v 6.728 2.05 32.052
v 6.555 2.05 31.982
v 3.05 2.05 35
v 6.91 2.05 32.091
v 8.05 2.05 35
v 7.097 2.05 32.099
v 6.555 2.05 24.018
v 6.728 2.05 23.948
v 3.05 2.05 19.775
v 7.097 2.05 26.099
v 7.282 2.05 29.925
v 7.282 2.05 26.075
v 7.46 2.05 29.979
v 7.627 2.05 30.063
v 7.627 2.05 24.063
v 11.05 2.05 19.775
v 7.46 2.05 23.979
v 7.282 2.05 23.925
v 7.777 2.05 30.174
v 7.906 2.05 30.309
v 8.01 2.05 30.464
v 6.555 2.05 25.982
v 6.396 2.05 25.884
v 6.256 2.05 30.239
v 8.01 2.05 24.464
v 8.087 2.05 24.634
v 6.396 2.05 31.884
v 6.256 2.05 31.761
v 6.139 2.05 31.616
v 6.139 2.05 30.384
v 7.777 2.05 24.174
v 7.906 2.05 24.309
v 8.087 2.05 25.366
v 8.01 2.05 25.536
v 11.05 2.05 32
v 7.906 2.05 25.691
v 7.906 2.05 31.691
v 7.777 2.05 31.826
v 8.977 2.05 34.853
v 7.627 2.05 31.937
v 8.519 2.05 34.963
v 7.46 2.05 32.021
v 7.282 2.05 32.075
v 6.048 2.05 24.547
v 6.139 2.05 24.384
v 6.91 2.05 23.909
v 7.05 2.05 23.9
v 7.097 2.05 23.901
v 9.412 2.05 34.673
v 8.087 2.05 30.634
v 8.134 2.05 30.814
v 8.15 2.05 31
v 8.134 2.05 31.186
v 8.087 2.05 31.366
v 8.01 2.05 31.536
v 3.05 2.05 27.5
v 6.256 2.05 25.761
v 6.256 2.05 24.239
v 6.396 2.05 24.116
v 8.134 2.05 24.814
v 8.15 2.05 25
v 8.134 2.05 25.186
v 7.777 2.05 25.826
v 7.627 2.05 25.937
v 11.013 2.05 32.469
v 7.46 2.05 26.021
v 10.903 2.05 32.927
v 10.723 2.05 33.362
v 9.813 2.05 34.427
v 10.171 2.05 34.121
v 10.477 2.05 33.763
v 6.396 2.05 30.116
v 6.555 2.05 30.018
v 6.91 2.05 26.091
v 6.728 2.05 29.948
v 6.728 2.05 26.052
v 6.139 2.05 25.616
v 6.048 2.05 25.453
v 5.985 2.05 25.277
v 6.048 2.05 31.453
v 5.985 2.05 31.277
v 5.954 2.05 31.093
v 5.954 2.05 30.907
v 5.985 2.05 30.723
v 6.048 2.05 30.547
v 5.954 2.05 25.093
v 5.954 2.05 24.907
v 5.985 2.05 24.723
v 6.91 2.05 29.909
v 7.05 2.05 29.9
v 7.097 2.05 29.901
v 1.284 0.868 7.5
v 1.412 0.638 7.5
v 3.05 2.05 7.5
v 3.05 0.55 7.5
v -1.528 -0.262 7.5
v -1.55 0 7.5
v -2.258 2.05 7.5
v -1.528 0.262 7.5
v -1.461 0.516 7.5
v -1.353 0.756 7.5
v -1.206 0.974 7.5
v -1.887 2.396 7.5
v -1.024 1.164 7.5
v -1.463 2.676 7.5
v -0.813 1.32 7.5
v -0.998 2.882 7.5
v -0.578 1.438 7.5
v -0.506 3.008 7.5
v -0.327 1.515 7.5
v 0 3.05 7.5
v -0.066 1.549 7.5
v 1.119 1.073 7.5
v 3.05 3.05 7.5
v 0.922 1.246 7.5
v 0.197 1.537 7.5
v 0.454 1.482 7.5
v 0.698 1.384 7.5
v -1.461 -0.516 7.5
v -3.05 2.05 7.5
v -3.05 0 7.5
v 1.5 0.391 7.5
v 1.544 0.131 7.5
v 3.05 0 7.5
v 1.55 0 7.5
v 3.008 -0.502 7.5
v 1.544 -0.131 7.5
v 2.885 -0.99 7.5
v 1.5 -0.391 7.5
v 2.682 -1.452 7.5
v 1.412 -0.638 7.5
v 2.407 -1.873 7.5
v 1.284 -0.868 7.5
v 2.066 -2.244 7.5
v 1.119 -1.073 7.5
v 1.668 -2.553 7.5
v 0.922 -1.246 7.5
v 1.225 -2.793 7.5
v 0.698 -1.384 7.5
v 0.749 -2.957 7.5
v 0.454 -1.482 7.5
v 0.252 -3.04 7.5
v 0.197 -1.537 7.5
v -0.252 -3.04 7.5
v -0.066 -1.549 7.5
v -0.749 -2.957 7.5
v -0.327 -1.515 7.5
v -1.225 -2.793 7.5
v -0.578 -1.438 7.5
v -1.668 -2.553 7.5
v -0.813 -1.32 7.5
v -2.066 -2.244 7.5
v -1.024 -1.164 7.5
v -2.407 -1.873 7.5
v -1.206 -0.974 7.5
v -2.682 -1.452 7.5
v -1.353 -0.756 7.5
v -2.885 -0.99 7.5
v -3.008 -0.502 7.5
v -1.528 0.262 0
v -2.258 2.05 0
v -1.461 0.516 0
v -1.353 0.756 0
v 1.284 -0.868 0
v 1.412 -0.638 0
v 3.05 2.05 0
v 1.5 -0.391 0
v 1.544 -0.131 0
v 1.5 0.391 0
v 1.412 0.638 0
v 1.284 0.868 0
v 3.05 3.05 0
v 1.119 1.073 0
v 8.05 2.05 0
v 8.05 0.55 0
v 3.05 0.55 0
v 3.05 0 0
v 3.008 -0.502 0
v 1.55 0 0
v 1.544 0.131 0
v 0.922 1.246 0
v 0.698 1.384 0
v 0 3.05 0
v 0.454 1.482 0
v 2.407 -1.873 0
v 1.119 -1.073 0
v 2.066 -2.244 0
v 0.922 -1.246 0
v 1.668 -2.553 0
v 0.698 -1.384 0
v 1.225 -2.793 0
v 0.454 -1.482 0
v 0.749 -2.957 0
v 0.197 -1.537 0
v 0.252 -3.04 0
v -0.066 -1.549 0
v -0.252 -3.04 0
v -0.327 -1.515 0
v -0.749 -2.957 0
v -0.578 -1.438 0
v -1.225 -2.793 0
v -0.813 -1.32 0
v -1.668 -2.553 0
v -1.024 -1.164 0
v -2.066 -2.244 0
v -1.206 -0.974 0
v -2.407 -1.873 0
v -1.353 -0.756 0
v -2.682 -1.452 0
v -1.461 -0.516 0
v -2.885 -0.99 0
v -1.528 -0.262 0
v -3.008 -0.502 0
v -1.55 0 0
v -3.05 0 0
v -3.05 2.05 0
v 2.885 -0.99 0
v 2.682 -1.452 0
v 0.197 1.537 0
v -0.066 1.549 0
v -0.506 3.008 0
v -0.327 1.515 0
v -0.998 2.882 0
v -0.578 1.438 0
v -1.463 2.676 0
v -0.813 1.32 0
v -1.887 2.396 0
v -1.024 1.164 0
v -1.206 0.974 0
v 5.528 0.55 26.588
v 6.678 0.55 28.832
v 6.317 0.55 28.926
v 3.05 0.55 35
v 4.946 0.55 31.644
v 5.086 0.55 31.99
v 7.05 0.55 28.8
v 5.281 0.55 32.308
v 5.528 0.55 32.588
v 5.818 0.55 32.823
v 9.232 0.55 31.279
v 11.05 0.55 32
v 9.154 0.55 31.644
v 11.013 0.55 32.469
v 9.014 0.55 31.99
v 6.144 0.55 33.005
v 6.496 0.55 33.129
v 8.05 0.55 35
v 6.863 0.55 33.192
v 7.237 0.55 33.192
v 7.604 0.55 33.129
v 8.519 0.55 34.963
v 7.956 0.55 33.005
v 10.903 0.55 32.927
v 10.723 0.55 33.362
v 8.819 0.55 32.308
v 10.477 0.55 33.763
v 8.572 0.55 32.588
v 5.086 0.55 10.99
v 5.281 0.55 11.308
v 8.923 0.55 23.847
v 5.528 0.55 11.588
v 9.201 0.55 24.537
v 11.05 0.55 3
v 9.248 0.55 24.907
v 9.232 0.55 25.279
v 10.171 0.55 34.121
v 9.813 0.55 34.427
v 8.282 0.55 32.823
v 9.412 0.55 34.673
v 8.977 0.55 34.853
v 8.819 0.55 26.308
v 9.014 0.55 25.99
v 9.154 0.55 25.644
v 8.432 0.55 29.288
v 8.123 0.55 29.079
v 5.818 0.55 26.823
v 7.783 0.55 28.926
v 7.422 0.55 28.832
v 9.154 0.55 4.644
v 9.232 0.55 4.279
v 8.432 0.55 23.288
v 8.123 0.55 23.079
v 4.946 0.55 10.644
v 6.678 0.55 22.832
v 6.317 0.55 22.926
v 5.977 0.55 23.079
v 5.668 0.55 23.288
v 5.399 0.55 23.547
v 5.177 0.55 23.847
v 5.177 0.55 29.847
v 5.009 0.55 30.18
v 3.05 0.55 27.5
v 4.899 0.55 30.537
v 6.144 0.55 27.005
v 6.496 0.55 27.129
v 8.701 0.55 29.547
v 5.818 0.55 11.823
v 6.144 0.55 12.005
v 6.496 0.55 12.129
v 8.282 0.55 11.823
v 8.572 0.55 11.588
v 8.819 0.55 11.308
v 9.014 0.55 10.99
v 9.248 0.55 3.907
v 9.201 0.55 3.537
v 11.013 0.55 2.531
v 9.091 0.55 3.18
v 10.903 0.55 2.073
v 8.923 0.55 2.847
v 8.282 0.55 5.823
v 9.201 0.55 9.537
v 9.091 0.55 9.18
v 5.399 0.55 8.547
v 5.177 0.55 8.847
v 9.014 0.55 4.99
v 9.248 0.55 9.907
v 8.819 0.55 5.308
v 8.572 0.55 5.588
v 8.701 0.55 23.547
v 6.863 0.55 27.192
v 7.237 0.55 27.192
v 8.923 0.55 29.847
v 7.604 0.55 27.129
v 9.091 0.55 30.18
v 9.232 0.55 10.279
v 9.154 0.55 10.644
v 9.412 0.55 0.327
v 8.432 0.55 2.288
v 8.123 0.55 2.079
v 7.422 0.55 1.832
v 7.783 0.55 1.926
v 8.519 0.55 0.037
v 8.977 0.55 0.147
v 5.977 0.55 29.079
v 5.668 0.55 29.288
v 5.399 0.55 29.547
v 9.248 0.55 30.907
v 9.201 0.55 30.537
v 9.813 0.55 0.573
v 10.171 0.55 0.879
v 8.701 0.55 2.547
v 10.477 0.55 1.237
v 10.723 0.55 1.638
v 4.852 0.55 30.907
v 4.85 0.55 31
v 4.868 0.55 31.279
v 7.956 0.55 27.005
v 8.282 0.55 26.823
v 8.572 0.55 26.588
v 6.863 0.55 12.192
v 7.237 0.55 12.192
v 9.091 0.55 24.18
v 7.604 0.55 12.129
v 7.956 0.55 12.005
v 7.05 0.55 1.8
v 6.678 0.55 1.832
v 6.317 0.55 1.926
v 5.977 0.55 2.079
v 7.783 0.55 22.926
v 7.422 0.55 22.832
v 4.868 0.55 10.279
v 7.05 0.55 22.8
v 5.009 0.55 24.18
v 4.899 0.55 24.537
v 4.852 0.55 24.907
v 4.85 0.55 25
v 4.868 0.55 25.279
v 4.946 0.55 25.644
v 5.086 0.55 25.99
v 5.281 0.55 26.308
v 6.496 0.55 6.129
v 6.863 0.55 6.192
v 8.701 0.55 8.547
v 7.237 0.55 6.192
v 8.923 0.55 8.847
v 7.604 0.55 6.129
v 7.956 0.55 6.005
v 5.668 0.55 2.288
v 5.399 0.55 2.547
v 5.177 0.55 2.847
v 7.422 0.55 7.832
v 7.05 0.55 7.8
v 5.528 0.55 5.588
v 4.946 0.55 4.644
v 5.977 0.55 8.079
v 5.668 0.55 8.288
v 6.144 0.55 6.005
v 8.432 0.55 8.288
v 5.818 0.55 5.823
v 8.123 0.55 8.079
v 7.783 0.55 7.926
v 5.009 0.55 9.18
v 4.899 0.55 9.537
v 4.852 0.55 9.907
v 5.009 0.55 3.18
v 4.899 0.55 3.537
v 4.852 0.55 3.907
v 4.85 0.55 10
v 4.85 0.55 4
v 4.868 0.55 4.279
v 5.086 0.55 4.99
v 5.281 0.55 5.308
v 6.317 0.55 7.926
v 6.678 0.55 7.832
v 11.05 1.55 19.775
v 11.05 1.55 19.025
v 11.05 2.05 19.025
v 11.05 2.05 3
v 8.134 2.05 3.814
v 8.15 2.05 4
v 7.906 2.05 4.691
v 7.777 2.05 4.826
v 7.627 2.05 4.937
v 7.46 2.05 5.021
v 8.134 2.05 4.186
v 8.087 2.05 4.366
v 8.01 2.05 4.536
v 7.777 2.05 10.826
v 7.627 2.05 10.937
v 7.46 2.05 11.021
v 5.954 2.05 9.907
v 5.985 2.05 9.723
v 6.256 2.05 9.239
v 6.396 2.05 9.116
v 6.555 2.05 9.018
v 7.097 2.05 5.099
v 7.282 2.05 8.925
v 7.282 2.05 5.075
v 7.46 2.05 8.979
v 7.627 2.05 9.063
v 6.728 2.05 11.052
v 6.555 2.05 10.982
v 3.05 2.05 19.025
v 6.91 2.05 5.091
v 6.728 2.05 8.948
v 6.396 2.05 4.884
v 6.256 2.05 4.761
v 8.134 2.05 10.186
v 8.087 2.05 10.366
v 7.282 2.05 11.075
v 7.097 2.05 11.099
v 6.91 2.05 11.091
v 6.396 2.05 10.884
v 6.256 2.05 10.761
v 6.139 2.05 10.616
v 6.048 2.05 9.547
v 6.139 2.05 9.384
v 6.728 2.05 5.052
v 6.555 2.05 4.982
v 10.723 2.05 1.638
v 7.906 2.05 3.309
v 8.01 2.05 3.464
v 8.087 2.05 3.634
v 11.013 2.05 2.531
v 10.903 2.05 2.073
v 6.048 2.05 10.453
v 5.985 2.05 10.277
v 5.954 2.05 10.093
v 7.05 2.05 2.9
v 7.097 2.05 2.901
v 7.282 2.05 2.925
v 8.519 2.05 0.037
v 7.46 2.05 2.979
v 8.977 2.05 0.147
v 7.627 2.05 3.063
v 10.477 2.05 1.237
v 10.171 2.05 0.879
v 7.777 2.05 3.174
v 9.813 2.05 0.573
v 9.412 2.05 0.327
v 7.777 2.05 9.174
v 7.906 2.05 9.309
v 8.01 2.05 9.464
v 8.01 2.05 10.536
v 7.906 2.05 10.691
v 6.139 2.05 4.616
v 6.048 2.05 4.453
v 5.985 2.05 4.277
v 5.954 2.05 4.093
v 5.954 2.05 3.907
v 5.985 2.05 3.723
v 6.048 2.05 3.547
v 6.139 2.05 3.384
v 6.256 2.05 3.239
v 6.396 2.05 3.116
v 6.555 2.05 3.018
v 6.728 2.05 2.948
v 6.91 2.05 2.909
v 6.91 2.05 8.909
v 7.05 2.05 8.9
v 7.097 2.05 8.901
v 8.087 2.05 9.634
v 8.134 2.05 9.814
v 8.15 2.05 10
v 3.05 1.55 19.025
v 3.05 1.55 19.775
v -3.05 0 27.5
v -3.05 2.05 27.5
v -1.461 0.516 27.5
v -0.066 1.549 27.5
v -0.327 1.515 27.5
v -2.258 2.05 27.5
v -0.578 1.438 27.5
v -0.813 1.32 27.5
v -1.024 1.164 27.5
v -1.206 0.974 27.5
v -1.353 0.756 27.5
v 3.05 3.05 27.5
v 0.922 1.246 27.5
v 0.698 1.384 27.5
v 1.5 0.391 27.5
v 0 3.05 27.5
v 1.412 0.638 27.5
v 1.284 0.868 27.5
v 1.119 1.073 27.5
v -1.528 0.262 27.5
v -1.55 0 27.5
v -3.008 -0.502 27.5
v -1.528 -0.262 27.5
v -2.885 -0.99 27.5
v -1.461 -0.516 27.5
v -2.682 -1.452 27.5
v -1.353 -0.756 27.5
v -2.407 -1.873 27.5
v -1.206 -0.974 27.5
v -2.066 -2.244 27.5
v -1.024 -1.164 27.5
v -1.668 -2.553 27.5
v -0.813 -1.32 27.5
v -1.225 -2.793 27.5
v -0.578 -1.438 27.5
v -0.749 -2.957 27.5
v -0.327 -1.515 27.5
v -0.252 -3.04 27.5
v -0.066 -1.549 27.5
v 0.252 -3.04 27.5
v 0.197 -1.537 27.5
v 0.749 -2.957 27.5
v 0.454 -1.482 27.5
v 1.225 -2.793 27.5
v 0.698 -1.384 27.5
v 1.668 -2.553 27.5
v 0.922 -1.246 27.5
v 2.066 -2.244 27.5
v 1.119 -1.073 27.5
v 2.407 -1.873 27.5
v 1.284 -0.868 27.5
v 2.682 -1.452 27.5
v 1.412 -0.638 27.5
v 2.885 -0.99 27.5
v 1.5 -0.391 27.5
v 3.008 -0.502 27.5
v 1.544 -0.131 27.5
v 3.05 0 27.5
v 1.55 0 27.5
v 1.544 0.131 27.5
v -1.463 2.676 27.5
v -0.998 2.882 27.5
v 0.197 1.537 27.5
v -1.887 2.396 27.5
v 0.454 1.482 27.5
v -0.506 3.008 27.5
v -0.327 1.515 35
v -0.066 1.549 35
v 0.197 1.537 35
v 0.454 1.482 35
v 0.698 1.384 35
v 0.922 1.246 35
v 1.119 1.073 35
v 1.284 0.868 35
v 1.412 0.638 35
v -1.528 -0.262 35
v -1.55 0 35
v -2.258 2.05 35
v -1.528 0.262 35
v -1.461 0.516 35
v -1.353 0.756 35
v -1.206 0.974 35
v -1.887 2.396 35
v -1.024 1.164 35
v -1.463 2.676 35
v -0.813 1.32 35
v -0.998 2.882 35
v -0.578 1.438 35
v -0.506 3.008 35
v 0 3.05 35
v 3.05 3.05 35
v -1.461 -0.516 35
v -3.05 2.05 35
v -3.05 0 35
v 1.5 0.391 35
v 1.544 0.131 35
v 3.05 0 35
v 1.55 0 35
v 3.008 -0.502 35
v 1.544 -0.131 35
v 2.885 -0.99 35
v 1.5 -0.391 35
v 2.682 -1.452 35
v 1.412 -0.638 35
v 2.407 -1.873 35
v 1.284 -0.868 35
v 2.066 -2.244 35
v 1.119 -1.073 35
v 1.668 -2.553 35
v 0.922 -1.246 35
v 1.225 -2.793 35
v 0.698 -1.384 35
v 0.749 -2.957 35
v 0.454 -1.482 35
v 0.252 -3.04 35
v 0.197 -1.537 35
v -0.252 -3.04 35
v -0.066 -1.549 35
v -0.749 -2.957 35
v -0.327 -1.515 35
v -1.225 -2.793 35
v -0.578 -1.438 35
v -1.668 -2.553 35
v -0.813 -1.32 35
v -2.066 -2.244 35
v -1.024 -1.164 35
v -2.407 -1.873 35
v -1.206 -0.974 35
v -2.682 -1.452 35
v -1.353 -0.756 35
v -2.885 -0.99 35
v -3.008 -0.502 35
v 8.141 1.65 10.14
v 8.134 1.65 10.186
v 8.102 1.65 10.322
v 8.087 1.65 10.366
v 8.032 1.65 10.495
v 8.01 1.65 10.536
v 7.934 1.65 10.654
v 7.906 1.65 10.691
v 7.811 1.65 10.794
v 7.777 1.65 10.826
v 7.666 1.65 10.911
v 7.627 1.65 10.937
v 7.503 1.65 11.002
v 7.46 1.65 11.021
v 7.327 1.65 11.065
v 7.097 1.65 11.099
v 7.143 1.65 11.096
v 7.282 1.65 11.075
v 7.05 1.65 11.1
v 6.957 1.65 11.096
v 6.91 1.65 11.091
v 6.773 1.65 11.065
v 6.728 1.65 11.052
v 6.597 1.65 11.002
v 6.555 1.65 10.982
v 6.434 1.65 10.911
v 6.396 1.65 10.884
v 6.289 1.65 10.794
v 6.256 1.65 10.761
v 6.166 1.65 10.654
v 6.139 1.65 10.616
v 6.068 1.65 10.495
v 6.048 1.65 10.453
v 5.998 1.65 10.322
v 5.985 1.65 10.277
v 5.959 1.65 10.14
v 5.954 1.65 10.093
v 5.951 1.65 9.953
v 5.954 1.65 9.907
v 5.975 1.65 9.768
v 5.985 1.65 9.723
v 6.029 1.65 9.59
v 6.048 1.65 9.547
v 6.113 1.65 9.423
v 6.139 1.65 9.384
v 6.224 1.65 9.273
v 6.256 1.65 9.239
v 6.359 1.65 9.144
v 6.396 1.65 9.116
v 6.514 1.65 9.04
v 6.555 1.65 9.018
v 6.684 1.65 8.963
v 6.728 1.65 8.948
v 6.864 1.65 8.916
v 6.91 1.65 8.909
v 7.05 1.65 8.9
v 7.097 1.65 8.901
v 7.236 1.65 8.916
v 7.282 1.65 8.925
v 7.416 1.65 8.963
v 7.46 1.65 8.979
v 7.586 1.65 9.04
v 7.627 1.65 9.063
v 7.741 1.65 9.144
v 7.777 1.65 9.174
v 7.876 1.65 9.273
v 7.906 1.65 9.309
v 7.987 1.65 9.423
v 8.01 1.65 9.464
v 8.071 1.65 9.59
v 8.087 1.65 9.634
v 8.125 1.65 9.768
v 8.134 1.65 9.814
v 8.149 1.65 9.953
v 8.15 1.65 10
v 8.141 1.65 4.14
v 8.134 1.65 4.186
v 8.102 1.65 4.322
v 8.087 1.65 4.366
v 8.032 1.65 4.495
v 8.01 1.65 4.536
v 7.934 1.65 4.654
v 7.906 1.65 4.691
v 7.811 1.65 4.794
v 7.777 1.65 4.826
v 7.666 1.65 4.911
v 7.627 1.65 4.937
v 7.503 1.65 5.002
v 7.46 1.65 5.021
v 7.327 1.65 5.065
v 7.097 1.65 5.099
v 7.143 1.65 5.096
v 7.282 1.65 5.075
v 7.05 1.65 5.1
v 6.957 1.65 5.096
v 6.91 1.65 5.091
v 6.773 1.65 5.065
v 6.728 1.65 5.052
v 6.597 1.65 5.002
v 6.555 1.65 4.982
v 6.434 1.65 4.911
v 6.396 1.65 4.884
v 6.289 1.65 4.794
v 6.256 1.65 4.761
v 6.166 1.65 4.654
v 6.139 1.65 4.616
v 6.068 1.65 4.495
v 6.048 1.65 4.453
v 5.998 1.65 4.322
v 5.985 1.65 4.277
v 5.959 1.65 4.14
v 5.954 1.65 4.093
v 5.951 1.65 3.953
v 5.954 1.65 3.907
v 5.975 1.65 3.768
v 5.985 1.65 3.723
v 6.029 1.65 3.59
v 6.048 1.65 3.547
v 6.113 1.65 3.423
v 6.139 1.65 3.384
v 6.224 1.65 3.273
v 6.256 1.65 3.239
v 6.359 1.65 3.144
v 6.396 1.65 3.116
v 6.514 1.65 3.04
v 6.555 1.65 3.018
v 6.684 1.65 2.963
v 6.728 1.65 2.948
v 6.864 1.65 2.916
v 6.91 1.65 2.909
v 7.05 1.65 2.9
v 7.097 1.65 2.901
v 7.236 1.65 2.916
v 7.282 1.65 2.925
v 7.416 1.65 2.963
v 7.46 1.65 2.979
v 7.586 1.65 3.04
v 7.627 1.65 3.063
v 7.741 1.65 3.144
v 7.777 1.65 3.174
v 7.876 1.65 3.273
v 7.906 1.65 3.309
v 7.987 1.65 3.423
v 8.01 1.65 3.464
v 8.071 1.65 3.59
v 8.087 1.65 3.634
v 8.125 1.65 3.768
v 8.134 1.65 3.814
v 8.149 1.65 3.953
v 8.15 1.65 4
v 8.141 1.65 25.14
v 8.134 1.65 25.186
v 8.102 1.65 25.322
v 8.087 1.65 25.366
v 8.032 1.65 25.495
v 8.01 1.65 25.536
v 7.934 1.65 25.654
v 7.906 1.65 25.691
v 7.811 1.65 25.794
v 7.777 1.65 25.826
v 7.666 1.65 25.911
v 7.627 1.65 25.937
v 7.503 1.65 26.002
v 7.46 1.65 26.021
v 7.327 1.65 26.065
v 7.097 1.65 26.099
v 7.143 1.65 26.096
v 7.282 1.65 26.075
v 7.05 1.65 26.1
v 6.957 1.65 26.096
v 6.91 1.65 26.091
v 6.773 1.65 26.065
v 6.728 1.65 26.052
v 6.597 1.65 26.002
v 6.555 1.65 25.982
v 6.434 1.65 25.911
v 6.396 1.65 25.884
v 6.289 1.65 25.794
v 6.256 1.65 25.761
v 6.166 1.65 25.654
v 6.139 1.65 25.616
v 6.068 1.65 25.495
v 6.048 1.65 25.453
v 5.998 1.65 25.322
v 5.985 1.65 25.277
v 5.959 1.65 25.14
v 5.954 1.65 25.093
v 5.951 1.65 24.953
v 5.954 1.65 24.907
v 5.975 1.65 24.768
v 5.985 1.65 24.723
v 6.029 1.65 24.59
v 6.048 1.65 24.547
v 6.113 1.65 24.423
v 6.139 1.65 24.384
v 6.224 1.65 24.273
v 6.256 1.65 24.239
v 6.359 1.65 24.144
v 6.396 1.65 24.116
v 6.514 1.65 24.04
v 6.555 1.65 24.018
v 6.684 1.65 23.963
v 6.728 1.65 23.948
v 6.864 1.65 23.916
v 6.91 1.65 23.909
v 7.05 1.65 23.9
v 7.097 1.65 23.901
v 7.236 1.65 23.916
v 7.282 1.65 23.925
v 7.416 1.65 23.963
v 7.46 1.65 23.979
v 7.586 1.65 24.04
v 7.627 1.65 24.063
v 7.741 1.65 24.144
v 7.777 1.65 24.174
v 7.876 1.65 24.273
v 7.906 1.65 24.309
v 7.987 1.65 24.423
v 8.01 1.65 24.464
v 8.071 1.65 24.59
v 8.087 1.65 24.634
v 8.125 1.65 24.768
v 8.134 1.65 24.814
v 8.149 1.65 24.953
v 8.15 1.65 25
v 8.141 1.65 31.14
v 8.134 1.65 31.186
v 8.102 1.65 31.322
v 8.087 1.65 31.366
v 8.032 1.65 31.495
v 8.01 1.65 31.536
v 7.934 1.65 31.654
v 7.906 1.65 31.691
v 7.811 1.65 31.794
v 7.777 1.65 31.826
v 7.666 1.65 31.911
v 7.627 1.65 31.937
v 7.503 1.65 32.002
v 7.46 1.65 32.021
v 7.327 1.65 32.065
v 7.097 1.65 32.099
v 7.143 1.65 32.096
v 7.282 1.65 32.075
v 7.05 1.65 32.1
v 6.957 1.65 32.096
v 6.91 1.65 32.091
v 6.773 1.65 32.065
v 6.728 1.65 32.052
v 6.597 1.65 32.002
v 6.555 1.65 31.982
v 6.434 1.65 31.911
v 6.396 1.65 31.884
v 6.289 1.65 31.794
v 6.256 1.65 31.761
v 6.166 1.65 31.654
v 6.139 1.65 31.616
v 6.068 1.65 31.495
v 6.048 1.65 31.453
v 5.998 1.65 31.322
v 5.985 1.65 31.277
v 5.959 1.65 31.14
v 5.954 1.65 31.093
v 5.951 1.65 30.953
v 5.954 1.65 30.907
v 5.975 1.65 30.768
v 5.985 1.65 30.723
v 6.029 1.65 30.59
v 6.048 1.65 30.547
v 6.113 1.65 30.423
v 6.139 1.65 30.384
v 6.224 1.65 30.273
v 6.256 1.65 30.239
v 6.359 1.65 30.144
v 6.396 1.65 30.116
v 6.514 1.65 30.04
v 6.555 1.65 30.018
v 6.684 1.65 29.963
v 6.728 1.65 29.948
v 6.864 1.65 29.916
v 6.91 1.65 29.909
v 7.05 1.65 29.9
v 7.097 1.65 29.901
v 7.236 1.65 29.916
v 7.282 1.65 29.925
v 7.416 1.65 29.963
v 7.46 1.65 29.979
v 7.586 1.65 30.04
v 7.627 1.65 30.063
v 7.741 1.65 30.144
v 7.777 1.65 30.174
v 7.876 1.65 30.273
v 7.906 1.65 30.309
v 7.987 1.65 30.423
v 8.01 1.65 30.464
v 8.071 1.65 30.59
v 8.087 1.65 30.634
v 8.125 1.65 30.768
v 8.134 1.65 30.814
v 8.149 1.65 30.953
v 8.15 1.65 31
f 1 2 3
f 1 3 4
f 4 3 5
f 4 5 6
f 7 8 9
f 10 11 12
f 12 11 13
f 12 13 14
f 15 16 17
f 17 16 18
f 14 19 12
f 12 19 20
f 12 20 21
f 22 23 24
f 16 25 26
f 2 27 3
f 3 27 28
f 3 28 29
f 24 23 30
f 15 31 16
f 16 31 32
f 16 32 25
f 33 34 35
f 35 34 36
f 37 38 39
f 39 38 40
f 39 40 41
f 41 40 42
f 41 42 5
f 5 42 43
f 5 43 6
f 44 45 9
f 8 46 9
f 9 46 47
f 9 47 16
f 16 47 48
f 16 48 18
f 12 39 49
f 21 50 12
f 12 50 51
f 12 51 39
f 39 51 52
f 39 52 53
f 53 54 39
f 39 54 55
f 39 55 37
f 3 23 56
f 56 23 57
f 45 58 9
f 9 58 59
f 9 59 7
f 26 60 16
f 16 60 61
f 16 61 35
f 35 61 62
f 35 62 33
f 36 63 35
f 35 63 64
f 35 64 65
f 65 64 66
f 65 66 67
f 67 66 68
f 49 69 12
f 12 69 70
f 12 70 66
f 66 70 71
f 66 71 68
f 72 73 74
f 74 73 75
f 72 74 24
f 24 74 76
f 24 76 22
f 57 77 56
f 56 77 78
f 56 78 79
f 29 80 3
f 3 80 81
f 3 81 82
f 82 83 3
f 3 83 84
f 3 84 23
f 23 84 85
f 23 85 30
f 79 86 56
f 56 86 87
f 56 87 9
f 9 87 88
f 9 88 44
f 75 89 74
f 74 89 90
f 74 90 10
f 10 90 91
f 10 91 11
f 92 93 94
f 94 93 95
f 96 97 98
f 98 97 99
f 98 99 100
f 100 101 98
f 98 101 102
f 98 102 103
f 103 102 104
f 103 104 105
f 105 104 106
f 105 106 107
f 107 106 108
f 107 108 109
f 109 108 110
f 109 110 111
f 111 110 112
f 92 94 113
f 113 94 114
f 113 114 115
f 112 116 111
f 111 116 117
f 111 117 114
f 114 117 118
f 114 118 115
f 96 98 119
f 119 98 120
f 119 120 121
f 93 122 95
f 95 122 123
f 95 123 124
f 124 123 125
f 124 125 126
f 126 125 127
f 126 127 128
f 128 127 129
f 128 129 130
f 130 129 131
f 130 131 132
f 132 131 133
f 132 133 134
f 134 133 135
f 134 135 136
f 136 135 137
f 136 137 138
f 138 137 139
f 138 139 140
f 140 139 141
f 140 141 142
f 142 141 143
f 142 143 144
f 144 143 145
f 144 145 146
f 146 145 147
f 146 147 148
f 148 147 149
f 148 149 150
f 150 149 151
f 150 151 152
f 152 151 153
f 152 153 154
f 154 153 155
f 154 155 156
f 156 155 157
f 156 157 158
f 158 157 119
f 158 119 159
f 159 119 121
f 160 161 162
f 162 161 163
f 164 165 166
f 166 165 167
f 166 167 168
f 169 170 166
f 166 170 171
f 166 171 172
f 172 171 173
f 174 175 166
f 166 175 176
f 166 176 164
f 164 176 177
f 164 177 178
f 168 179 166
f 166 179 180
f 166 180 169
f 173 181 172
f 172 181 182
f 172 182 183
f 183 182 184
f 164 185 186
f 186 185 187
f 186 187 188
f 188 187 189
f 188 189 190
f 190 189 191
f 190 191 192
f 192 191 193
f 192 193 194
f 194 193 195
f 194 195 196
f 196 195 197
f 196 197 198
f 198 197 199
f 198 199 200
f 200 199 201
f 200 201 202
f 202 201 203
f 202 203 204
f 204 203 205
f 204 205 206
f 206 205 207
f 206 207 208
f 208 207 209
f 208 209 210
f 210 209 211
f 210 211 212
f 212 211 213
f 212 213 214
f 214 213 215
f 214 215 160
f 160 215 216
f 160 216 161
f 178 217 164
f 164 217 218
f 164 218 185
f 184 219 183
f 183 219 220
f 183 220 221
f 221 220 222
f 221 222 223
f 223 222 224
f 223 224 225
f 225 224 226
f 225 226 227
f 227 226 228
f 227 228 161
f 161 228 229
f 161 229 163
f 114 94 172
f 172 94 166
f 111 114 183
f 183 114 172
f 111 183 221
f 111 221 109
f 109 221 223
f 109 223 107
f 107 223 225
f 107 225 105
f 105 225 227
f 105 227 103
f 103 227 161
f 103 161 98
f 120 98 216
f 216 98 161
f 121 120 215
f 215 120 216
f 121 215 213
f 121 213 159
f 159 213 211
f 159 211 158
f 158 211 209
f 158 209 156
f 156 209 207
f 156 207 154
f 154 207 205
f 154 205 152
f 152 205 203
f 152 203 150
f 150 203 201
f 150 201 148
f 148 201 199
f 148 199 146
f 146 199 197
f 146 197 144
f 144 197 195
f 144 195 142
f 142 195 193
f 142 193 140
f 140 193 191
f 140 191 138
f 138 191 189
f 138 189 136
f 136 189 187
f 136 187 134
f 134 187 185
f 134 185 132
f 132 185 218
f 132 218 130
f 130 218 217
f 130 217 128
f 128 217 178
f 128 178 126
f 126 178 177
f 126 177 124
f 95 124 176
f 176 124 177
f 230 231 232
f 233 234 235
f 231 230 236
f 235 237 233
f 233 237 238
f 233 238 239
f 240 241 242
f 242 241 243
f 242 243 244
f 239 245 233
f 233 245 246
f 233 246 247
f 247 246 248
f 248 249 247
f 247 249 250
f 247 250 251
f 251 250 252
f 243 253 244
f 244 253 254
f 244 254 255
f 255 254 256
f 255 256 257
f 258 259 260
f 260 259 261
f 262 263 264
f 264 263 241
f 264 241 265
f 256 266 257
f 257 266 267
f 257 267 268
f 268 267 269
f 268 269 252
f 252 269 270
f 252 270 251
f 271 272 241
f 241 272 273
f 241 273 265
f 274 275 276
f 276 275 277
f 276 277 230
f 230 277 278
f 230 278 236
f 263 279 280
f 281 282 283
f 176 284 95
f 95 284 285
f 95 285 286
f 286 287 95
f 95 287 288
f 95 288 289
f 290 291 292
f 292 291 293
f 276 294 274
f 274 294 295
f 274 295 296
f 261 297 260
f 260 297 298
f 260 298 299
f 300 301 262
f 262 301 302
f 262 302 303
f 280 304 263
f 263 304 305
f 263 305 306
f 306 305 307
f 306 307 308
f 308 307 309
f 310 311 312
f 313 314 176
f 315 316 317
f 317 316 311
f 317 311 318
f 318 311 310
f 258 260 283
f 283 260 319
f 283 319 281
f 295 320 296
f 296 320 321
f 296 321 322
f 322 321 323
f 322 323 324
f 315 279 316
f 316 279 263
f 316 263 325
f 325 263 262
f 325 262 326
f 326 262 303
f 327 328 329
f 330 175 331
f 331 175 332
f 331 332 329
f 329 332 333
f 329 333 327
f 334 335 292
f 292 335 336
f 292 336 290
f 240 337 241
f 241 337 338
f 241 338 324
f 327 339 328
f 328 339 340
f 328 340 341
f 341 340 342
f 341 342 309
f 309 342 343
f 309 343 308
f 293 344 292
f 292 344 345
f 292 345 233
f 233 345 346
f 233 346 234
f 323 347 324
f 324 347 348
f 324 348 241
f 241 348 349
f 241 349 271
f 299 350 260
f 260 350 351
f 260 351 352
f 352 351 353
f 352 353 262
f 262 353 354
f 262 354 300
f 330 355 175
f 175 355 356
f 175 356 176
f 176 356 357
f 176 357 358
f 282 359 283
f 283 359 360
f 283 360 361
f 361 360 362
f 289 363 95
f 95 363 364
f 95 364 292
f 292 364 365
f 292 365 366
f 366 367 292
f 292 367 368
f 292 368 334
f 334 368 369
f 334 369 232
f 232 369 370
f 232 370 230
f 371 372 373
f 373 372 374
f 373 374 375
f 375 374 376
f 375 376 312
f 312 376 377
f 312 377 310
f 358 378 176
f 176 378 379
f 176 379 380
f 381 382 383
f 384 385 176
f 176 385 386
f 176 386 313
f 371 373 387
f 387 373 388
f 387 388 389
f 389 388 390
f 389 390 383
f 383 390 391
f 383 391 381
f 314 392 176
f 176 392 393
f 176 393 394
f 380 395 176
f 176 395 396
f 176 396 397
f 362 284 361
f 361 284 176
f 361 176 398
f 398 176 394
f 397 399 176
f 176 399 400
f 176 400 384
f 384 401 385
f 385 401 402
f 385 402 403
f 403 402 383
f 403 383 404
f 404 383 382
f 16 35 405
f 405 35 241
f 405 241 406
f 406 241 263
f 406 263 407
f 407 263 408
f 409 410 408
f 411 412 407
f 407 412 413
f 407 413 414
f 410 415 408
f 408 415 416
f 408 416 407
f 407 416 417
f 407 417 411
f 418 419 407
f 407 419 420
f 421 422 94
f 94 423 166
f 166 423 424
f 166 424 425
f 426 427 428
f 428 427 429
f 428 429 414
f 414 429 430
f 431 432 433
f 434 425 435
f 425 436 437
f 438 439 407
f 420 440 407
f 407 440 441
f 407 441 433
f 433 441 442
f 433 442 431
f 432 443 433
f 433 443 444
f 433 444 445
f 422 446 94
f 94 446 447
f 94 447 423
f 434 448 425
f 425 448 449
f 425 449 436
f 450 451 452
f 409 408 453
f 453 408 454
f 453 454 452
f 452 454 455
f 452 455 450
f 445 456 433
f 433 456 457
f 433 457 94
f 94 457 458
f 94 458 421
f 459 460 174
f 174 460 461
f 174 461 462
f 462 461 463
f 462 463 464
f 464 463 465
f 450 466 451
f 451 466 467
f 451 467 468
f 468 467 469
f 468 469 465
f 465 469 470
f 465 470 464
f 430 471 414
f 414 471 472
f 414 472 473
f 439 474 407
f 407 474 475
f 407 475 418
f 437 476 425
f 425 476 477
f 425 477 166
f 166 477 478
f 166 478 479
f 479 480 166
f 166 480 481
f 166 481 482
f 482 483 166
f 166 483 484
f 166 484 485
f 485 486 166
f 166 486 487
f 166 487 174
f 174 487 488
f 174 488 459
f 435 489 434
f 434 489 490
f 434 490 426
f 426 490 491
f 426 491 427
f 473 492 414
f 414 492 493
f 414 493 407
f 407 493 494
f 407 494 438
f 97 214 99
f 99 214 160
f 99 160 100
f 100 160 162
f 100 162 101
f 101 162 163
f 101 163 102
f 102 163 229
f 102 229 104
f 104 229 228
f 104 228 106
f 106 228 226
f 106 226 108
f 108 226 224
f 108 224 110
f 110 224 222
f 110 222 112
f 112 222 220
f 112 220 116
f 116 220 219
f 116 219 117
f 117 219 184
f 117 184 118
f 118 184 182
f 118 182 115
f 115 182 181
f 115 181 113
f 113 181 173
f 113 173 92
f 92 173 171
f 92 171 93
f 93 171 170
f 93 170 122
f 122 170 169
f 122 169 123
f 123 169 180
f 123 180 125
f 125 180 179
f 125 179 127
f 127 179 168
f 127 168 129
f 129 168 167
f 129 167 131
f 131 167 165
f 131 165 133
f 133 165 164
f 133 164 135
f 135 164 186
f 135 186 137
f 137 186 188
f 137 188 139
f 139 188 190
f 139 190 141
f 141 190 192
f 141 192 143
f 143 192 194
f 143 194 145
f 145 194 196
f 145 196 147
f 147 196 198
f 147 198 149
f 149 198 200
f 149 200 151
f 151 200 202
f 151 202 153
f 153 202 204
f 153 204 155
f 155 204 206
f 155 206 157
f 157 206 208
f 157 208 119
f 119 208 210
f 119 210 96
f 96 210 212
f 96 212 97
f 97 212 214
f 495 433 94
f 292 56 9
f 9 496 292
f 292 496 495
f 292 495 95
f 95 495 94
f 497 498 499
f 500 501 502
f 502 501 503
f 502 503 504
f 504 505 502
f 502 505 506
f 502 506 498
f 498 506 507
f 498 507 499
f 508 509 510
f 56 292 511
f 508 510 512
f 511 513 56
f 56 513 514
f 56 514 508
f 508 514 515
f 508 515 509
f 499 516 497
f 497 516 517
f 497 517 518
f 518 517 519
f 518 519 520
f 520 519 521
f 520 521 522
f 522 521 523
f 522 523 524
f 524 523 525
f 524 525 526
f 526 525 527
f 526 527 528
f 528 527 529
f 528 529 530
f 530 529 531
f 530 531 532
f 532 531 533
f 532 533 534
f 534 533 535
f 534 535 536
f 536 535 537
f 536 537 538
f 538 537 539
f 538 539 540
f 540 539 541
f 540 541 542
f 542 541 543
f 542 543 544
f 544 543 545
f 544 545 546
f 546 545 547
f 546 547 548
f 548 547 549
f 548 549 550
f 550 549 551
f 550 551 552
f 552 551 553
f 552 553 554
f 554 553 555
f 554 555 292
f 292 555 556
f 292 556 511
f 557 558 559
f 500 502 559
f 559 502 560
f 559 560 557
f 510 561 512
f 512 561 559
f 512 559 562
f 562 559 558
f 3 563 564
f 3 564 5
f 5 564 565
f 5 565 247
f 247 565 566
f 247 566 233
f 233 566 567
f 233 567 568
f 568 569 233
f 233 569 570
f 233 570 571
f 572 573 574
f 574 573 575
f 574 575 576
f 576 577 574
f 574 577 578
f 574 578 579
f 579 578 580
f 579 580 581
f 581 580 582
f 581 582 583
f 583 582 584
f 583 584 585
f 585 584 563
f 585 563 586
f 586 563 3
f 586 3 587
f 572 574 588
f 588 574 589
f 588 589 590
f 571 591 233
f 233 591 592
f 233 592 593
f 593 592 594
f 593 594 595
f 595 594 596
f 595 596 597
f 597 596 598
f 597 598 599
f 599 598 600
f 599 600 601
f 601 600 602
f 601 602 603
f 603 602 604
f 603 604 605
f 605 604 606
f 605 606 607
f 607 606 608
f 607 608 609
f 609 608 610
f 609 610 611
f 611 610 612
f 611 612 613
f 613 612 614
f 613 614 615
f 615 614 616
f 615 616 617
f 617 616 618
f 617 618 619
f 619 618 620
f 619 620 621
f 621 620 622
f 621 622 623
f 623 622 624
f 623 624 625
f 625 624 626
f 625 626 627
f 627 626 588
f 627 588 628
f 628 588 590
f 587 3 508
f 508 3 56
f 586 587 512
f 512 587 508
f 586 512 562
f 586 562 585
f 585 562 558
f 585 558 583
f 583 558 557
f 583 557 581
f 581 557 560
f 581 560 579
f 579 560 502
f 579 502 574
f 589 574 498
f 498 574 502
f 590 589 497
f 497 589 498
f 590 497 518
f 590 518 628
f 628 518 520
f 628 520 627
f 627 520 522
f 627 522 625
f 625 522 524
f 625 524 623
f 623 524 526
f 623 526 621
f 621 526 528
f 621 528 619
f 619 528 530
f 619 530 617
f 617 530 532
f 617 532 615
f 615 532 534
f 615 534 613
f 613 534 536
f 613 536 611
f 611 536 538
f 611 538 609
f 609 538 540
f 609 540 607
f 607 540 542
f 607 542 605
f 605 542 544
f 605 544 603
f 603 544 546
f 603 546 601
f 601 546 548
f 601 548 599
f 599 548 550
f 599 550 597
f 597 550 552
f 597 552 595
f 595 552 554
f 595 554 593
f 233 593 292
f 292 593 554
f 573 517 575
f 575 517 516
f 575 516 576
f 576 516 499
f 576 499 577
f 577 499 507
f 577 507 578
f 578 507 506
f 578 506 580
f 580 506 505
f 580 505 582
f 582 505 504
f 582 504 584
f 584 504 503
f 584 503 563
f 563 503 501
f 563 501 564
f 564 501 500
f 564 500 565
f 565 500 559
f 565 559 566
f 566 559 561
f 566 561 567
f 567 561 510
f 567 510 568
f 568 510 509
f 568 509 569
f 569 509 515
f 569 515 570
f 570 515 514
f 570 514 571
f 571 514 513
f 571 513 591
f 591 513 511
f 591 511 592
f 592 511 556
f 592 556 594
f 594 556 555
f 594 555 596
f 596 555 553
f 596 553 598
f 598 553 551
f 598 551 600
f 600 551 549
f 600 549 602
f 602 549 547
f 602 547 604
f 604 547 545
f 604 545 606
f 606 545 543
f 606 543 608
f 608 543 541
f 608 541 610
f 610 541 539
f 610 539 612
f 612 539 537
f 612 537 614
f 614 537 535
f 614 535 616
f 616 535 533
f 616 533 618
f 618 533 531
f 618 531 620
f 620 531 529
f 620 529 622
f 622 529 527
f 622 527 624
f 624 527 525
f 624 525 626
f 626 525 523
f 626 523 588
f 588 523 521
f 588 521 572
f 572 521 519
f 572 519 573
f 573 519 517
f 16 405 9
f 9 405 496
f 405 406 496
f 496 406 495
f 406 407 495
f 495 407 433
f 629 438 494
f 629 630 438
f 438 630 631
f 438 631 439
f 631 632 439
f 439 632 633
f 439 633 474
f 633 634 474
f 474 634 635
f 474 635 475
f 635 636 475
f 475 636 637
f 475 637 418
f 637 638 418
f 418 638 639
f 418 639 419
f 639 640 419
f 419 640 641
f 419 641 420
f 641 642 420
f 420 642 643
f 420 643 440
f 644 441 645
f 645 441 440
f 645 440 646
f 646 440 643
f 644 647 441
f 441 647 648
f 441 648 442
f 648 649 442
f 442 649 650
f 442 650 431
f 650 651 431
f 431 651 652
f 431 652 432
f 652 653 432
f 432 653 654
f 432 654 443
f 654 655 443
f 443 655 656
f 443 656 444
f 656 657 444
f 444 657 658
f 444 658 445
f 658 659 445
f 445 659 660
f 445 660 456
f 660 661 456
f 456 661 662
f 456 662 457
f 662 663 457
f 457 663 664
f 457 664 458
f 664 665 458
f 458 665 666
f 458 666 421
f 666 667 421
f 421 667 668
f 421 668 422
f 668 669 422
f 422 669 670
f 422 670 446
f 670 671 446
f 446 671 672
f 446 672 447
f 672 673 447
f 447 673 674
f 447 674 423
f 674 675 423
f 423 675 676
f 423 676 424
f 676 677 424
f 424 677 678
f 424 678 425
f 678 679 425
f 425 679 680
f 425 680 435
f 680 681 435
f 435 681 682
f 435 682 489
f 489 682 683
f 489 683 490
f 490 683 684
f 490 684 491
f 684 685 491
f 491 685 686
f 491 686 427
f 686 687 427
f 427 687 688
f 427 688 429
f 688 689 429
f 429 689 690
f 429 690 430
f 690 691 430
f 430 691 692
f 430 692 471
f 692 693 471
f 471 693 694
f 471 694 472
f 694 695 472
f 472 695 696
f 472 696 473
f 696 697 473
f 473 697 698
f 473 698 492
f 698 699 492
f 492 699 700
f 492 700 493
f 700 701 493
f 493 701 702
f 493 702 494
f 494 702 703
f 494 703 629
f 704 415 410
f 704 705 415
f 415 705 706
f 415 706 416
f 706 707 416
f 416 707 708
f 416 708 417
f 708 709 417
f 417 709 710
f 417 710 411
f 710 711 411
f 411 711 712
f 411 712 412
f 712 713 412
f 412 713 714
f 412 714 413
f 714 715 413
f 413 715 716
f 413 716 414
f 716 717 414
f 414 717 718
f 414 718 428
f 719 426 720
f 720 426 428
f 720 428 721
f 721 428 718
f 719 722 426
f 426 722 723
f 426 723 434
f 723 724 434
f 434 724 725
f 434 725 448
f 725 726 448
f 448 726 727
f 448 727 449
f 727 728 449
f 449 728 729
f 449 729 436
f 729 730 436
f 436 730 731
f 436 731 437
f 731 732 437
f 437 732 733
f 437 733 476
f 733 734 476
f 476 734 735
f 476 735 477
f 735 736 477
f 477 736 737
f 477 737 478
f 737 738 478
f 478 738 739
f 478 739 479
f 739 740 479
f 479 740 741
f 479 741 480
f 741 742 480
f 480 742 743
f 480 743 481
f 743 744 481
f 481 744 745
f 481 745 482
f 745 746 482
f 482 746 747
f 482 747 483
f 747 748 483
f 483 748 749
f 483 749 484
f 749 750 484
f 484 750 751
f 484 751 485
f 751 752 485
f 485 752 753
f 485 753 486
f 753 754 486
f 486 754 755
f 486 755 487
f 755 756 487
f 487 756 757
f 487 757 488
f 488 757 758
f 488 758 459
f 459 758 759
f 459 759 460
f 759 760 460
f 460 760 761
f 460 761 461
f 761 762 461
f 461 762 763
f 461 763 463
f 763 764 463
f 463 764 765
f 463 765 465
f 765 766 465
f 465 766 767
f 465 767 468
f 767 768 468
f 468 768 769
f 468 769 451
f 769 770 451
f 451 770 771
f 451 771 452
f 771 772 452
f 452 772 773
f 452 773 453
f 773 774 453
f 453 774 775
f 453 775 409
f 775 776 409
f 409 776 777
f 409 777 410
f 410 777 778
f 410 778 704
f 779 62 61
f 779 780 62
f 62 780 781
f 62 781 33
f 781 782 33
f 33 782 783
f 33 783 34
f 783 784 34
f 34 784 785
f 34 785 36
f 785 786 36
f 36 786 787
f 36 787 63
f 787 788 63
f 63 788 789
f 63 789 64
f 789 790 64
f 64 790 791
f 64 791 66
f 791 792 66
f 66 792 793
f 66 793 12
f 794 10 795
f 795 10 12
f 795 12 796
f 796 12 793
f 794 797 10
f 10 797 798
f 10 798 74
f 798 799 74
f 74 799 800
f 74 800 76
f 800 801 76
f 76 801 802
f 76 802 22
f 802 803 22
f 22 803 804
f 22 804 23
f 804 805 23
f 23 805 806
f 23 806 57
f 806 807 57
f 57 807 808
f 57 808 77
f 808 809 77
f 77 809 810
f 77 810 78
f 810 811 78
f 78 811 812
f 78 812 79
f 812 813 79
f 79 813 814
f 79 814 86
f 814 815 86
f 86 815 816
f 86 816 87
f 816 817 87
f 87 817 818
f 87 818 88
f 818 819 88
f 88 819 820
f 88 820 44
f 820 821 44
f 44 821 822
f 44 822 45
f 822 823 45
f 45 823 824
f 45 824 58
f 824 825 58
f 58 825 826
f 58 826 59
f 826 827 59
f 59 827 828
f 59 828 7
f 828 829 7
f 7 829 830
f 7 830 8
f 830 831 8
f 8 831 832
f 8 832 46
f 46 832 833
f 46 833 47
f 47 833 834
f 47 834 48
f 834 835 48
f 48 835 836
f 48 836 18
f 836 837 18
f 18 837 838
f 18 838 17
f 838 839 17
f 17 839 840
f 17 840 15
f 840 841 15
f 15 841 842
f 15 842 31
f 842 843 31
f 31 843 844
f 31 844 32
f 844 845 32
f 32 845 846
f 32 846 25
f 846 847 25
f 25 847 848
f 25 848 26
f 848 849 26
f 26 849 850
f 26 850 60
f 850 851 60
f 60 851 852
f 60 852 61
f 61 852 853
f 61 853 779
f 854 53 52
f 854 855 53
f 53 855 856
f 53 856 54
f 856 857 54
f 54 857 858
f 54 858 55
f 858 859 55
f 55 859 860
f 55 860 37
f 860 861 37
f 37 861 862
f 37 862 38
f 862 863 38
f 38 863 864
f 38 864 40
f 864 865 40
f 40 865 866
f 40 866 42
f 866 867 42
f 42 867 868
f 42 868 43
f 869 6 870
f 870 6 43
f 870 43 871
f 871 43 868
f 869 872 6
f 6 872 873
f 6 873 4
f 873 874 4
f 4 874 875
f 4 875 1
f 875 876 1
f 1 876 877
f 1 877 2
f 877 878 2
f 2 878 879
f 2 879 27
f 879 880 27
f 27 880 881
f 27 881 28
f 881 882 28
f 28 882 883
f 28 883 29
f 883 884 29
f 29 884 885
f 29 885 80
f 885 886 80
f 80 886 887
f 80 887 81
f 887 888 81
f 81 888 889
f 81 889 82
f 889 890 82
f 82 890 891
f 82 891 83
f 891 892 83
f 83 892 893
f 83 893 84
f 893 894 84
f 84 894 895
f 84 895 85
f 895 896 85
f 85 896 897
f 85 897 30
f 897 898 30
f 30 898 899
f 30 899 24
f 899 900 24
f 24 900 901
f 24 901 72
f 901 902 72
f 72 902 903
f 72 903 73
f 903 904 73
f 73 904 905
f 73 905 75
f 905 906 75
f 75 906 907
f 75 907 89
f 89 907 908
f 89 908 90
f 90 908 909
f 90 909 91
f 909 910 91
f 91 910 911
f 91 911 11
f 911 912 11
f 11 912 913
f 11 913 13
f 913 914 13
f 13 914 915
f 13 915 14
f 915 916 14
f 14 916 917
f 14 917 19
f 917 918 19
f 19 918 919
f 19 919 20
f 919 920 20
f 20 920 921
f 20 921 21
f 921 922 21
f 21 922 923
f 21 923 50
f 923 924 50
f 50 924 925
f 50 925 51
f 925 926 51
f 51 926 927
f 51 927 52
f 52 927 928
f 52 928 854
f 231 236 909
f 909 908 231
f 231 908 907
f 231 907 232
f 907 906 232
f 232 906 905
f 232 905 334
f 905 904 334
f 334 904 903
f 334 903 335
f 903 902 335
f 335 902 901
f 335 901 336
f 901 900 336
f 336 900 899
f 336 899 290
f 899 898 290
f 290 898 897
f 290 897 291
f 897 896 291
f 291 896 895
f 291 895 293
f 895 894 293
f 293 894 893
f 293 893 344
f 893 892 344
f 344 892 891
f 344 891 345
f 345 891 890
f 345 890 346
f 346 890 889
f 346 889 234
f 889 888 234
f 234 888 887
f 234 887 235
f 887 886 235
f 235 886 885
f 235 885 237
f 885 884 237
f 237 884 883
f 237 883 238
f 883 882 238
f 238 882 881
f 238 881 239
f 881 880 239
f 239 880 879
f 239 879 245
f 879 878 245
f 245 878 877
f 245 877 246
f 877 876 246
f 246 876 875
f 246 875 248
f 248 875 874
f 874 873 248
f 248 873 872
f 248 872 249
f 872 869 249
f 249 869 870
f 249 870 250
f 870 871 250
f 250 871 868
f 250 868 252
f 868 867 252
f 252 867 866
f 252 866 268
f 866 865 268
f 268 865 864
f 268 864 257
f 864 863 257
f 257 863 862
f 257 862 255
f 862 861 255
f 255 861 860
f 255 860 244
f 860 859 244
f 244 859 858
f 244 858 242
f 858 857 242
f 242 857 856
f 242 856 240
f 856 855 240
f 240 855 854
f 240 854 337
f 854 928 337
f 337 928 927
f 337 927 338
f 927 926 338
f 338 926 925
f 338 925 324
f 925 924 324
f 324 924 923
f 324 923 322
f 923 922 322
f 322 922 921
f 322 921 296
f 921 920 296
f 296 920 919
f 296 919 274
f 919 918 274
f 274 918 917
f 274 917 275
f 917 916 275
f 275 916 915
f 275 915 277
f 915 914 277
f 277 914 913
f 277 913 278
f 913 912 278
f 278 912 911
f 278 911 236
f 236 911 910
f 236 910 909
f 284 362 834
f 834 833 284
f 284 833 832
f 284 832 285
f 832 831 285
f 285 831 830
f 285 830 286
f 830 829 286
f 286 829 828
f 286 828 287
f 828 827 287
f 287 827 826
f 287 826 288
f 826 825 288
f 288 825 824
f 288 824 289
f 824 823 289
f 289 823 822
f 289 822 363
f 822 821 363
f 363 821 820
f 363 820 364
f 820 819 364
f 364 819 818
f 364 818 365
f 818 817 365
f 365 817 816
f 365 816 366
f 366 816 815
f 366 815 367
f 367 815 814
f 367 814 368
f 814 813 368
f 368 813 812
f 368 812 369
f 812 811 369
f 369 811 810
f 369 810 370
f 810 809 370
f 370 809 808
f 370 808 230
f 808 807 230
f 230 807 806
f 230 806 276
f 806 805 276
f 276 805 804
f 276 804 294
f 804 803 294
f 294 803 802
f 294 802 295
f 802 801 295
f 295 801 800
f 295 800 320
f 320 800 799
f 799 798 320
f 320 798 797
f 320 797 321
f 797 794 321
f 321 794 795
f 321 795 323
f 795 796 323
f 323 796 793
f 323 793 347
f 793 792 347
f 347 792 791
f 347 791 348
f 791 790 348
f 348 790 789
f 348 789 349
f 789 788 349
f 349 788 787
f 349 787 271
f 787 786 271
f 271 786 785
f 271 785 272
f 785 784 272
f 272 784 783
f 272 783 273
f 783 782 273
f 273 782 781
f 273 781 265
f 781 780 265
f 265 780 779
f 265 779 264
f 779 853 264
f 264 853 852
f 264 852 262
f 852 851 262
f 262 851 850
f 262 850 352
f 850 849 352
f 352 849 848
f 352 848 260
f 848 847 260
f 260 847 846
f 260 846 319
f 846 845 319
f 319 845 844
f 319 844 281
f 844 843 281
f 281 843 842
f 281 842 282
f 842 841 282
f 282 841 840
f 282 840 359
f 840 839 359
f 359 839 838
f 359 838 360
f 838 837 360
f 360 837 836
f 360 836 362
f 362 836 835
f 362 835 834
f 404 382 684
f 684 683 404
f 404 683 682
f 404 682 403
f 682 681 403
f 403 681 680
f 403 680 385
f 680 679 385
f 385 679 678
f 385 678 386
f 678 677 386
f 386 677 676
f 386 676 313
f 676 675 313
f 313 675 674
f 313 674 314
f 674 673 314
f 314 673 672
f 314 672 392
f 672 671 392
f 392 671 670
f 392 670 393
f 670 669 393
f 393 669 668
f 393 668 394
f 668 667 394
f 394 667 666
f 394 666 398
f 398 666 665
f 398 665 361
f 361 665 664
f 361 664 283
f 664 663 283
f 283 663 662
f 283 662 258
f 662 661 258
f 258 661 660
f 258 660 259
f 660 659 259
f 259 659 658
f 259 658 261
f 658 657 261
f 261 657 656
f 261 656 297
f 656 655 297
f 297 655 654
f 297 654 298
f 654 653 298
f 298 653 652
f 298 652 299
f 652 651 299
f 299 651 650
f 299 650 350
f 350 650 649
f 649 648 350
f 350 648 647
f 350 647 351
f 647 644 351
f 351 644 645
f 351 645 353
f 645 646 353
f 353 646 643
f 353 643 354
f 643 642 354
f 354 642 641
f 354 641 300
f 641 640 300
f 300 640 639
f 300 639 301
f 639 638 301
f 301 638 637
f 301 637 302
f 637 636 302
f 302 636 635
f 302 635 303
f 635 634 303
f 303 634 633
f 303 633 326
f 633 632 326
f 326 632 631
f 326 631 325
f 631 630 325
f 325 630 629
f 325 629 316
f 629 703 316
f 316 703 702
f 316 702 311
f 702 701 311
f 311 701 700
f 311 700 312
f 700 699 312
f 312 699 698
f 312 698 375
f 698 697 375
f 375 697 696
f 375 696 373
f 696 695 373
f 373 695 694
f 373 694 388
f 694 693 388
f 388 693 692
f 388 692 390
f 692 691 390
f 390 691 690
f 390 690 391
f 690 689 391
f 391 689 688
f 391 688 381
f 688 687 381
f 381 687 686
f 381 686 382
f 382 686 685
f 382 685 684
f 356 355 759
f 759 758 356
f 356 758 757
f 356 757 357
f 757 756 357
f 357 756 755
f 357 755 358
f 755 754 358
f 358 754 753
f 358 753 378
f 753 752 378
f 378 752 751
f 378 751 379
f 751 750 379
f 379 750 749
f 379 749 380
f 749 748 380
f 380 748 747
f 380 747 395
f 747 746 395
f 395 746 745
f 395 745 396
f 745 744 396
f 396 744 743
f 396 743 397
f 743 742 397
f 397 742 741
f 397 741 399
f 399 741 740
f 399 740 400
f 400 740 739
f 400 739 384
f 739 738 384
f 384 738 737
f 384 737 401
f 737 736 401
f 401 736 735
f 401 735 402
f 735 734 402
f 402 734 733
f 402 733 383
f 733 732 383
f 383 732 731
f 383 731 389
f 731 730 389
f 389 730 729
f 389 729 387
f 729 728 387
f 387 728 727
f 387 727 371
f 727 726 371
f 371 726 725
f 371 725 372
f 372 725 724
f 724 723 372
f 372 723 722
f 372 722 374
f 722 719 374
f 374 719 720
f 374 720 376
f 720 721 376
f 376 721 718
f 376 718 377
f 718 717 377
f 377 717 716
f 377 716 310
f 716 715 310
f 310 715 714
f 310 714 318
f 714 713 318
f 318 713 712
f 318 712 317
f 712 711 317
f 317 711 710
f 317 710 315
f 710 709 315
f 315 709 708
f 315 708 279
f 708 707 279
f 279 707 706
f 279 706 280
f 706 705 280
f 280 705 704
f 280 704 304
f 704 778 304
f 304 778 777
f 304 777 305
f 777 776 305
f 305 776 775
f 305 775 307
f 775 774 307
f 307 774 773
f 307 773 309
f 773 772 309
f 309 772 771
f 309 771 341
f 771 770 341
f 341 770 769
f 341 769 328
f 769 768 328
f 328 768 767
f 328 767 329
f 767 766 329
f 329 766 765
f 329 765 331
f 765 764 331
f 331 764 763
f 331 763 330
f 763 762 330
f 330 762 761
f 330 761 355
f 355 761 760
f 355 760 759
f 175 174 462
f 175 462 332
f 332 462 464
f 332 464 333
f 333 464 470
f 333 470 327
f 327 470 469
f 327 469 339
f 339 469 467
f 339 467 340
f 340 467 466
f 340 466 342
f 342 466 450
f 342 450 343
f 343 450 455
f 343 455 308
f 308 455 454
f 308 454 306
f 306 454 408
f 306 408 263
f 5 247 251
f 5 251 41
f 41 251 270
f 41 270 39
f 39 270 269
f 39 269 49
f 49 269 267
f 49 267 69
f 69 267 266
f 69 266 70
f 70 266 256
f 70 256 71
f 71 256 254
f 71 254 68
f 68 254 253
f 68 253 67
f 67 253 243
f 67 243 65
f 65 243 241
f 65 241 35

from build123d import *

# Parameters (mm, degrees)
SKETCH2_R           = 1.55
BOSS_EXTRUDE1_DEPTH = 7.5
SKETCH4_W           = 8
SKETCH4_H           = 1.5
BOSS_EXTRUDE3_DEPTH = 20
SKETCH5_R           = 1.55
BOSS_EXTRUDE4_DEPTH = 7.5
SKETCH6_W           = 0.75
SKETCH6_H           = 0.5
CUT_EXTRUDE1_DEPTH  = 9
SKETCH7_R           = 1.1
CUT_EXTRUDE2_DEPTH  = 3.5
CHAMFER1_SIZE       = 1.1
FILLET1_R           = 3


with BuildPart() as part:
    # Sketch2 → Boss-Extrude1 (new body)
    with BuildSketch(Plane.XY):
        with BuildLine():
            Line((3.05, 2.05), (11.05, 2.05))
            Line((11.05, 2.05), (11.05, 0.55))
            Line((11.05, 0.55), (3.05, 0.55))
            Line((3.05, 0.55), (3.05, 0))
            ThreePointArc((3.05, 0), (0, -3.05), (-3.05, 0))
            Line((-3.05, 0), (-3.05, 2.05))
            Line((-3.05, 2.05), (-2.258317958, 2.05))
            ThreePointArc((-2.258317958, 2.05), (-1.234908904, 2.788816953), (0, 3.05))
            Line((0, 3.05), (3.05, 3.05))
            Line((3.05, 3.05), (3.05, 2.05))
        make_face()
        Circle(SKETCH2_R, mode=Mode.SUBTRACT)
    extrude(amount=BOSS_EXTRUDE1_DEPTH)

    # Sketch4 → Boss-Extrude3 (add)
    with BuildSketch(Plane.XY.offset(7.5)):
        with Locations((7.05, 1.3)):
            Rectangle(SKETCH4_W, SKETCH4_H)
    extrude(amount=BOSS_EXTRUDE3_DEPTH)

    # Sketch5 → Boss-Extrude4 (add)
    with BuildSketch(Plane.XY.offset(27.5)):
        with BuildLine():
            Line((11.05, 0.55), (11.05, 2.05))
            Line((11.05, 2.05), (3.05, 2.05))
            Line((3.05, 2.05), (3.05, 3.05))
            Line((3.05, 3.05), (0, 3.05))
            ThreePointArc((0, 3.05), (-1.234908904, 2.788816953), (-2.258317958, 2.05))
            Line((-2.258317958, 2.05), (-3.05, 2.05))
            Line((-3.05, 2.05), (-3.05, 0))
            ThreePointArc((-3.05, 0), (0, -3.05), (3.05, 0))
            Line((3.05, 0), (3.05, 0.55))
            Line((3.05, 0.55), (11.05, 0.55))
        make_face()
        Circle(SKETCH5_R, mode=Mode.SUBTRACT)
    extrude(amount=BOSS_EXTRUDE4_DEPTH)

    # Sketch6 → Cut-Extrude1 (cut, through all)
    with BuildSketch(Plane.ZY.offset(-3.05)):
        with Locations((19.4, 1.8)):
            Rectangle(SKETCH6_W, SKETCH6_H)
    extrude(amount=-CUT_EXTRUDE1_DEPTH, mode=Mode.SUBTRACT)

    # Sketch7 → Cut-Extrude2 (cut, through all)
    with BuildSketch(Plane.XZ.offset(-0.55)):
        with Locations((7.05, 25)):
            Circle(SKETCH7_R)
        with Locations((7.05, 10)):
            Circle(SKETCH7_R)
        with Locations((7.05, 31)):
            Circle(SKETCH7_R)
        with Locations((7.05, 4)):
            Circle(SKETCH7_R)
    extrude(amount=-CUT_EXTRUDE2_DEPTH, mode=Mode.SUBTRACT)

    # Chamfer1
    chamfer1_edges = [part.edges().sort_by_distance(p)[0] for p in [
        (5.95, 0.55, 10),
        (5.95, 0.55, 25),
        (5.95, 0.55, 4),
        (5.95, 0.55, 31),
    ]]
    chamfer(chamfer1_edges, length=CHAMFER1_SIZE)

    # Fillet1
    fillet1_edges = [part.edges().sort_by_distance(p)[0] for p in [
        (11.05, 1.3, 0),
        (11.05, 1.3, 35),
    ]]
    fillet(fillet1_edges, radius=FILLET1_R)


solid = part.part
